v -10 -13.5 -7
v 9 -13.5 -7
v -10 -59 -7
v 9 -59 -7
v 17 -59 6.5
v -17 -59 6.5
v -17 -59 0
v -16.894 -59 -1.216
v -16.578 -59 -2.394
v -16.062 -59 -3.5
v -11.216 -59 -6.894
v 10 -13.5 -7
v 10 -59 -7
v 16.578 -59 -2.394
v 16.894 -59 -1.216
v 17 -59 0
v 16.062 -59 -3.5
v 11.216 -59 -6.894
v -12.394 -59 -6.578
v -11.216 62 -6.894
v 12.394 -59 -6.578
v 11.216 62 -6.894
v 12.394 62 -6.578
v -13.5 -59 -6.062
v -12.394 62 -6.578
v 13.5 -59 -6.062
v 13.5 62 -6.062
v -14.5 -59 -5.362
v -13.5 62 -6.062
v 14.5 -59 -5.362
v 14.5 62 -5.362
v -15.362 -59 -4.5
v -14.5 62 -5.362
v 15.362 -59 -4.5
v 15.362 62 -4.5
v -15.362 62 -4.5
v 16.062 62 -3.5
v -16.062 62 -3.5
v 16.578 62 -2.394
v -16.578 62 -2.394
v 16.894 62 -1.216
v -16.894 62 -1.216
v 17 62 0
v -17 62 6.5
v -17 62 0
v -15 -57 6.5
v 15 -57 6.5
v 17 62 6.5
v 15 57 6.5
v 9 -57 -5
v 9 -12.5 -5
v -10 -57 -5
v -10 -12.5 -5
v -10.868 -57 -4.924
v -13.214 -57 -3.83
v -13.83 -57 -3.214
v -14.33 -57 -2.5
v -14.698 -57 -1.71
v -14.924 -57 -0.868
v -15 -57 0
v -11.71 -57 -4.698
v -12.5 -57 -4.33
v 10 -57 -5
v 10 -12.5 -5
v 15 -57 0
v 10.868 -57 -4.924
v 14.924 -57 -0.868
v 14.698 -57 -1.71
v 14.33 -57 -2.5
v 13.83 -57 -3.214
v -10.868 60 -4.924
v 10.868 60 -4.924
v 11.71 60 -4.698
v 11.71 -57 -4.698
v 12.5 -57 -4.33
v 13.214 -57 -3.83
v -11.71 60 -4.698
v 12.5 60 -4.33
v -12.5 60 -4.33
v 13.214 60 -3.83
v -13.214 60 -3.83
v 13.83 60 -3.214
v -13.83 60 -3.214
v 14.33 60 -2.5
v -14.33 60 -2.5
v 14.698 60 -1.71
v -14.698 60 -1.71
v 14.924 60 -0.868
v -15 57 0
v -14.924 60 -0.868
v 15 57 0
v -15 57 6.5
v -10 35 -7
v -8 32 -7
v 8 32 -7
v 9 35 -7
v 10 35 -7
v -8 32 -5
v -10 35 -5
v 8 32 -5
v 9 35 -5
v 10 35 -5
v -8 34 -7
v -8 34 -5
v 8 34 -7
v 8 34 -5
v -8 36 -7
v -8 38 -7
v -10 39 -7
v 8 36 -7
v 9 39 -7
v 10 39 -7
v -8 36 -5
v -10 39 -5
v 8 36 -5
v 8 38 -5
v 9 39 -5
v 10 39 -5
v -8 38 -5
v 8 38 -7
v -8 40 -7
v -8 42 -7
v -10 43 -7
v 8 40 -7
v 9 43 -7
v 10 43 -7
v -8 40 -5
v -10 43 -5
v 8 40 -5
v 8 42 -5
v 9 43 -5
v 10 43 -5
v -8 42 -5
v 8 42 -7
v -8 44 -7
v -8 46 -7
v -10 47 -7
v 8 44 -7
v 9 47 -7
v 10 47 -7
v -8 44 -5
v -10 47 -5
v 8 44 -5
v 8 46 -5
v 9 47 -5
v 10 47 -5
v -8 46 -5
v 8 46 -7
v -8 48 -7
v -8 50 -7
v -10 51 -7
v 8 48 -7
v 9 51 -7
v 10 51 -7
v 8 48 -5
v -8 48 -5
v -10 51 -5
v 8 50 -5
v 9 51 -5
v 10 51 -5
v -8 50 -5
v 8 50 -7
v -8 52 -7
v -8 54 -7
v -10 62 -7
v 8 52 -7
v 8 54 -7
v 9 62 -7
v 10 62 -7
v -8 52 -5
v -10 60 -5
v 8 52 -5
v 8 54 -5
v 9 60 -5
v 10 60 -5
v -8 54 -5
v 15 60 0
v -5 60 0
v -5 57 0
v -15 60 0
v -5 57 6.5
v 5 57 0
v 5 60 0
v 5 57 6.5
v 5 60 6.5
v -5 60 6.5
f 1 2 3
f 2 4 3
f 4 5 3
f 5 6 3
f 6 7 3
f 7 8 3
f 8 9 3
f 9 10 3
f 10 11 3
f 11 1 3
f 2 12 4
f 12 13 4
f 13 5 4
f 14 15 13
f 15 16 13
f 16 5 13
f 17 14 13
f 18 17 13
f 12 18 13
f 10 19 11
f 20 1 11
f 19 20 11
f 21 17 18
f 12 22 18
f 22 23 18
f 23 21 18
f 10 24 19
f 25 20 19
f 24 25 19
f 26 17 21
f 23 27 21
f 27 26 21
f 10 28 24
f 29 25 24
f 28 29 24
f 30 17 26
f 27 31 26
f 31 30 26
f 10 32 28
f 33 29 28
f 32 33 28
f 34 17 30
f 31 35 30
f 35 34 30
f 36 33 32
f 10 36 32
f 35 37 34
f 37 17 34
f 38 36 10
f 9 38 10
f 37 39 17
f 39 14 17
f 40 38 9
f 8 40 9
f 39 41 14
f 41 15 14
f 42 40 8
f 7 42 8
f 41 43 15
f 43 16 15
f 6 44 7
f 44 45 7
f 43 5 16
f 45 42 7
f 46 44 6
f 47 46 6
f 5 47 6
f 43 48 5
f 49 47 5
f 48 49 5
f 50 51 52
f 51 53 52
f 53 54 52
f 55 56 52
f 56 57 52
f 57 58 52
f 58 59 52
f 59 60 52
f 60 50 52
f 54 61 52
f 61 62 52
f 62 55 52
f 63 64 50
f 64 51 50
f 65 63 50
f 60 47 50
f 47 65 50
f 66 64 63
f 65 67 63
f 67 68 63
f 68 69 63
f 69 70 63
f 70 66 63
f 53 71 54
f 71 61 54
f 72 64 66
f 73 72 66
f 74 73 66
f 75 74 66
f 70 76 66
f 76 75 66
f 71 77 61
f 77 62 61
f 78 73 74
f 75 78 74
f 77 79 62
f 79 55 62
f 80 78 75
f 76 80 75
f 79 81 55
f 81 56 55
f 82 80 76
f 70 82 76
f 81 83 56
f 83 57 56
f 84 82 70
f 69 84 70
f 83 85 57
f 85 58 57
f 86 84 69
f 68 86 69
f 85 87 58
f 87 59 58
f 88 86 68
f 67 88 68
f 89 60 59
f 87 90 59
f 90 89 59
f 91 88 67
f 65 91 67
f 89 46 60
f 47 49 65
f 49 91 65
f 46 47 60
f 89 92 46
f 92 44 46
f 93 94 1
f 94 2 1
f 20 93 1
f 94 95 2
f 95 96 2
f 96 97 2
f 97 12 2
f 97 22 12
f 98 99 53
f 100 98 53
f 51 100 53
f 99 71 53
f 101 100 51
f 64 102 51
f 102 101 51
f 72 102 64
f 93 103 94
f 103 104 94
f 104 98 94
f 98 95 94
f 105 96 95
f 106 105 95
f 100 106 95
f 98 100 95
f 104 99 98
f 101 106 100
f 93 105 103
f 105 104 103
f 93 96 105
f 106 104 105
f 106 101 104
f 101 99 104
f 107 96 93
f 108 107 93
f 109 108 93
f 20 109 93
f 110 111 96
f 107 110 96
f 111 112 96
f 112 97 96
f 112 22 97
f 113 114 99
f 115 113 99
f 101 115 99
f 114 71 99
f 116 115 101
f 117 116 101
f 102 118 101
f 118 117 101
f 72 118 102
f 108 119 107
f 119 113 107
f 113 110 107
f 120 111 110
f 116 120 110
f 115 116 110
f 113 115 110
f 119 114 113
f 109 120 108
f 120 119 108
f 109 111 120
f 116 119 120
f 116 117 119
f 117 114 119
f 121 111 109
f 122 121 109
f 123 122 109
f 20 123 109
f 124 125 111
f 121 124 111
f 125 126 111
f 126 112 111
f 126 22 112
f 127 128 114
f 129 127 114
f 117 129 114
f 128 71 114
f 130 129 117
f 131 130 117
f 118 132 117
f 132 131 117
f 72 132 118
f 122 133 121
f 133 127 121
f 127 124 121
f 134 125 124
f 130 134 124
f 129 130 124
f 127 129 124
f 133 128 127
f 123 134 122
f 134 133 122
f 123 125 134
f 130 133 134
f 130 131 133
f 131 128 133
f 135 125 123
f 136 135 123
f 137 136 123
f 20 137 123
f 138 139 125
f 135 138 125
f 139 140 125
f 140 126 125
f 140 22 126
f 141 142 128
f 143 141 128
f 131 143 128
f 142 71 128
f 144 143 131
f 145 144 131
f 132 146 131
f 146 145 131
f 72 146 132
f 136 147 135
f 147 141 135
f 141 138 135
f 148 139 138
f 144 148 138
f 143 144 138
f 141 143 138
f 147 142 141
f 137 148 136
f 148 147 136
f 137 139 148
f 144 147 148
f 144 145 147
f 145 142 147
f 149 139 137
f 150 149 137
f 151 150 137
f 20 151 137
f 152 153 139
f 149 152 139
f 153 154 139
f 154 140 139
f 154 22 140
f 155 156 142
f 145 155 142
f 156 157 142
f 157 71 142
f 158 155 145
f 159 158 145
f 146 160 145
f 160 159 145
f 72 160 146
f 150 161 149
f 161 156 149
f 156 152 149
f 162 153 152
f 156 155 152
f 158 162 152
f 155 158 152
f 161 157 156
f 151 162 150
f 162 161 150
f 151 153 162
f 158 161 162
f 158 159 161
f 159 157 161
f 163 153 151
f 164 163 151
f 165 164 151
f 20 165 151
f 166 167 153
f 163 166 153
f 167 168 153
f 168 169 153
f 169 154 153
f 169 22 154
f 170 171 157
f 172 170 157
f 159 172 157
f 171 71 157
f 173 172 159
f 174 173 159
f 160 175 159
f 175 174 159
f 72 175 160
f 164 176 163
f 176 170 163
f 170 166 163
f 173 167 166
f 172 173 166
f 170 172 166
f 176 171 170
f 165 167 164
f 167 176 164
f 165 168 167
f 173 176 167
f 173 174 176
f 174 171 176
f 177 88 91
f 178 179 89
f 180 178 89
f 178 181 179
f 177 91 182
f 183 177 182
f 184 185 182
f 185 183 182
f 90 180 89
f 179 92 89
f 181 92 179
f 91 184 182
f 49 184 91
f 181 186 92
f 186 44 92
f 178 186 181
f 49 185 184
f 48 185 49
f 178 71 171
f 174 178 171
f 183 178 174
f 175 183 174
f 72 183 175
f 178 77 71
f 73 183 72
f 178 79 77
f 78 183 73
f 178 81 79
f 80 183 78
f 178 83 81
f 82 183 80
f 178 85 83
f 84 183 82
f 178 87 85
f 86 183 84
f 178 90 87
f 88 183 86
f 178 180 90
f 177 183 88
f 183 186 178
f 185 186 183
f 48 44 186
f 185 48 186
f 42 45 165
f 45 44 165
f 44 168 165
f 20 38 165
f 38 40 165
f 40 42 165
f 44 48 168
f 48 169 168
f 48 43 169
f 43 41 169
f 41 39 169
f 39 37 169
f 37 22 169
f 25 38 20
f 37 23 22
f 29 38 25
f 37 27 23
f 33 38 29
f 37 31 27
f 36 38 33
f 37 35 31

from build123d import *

# Parameters (mm, degrees)
ESBO_O1_W                = 34
ESBO_O1_H                = 121
RESSALTO_EXTRUS_O1_DEPTH = 6.5
RESSALTO_EXTRUS_O2_DEPTH = 62
RESSALTO_EXTRUS_O3_START = -59
RESSALTO_EXTRUS_O3_DEPTH = 59
RESSALTO_EXTRUS_O4_DEPTH = 2
RESSALTO_EXTRUS_O5_START = -2
RESSALTO_EXTRUS_O5_DEPTH = 2
ESBO_O8_W                = 16
ESBO_O8_H                = 2
CORTE_EXTRUS_O1_DEPTH    = 10


with BuildPart() as part:
    # Esboço1 → Ressalto-extrusão1 (new body)
    with BuildSketch(Plane.XY):
        with Locations((0, 1.5)):
            Rectangle(ESBO_O1_W, ESBO_O1_H)
        Polygon((15, -57), (-15, -57), (-15, 57), (-5, 57), (-5, 60), (5, 60), (5, 57), (15, 57), align=None, mode=Mode.SUBTRACT)
    extrude(amount=RESSALTO_EXTRUS_O1_DEPTH)

    # Esboço4 → Ressalto-extrusão2 (add)
    with BuildSketch(Plane(origin=(0, 0, 0), x_dir=(1, 0, 0), z_dir=(0, 1, 0))):
        with BuildLine():
            ThreePointArc((-10, 7), (-14.949747468, 4.949747468), (-17, 0))
            Line((-17, 0), (-15, 0))
            ThreePointArc((-15, 0), (-13.535533906, 3.535533906), (-10, 5))
            Line((-10, 5), (10, 5))
            ThreePointArc((10, 5), (13.535533906, 3.535533906), (15, 0))
            Line((15, 0), (17, 0))
            ThreePointArc((17, 0), (14.949747468, 4.949747468), (10, 7))
            Line((10, 7), (-10, 7))
        make_face()
    extrude(amount=RESSALTO_EXTRUS_O2_DEPTH)

    # Esboço4<3> → Ressalto-extrusão3 (add)
    with BuildSketch(Plane(origin=(0, 0, 0), x_dir=(1, 0, 0), z_dir=(0, 1, 0)).offset(RESSALTO_EXTRUS_O3_START)):
        with BuildLine():
            ThreePointArc((-10, 7), (-14.949747468, 4.949747468), (-17, 0))
            Line((-17, 0), (-15, 0))
            ThreePointArc((-15, 0), (-13.535533906, 3.535533906), (-10, 5))
            Line((-10, 5), (10, 5))
            ThreePointArc((10, 5), (13.535533906, 3.535533906), (15, 0))
            Line((15, 0), (17, 0))
            ThreePointArc((17, 0), (14.949747468, 4.949747468), (10, 7))
            Line((10, 7), (-10, 7))
        make_face()
    extrude(amount=RESSALTO_EXTRUS_O3_DEPTH)

    # Esboço6 → Ressalto-extrusão4 (add)
    with BuildSketch(Plane.XZ.offset(59)):
        with BuildLine():
            Line((-17, 6.5), (-17, 0))
            ThreePointArc((-17, 0), (-14.949747468, -4.949747468), (-10, -7))
            Line((-10, -7), (10, -7))
            ThreePointArc((10, -7), (14.949747468, -4.949747468), (17, 0))
            Line((17, 0), (17, 6.5))
            Line((17, 6.5), (-17, 6.5))
        make_face()
    extrude(amount=-RESSALTO_EXTRUS_O4_DEPTH)

    # Esboço7 → Ressalto-extrusão5 (add)
    with BuildSketch(Plane(origin=(0, 62, 0), x_dir=(1, 0, 0), z_dir=(0, 1, 0)).offset(RESSALTO_EXTRUS_O5_START)):
        with BuildLine():
            Line((17, -6.5), (17, 0))
            ThreePointArc((17, 0), (14.949747468, 4.949747468), (10, 7))
            Line((10, 7), (-10, 7))
            ThreePointArc((-10, 7), (-14.949747468, 4.949747468), (-17, 0))
            Line((-17, 0), (-17, -6.5))
            Line((-17, -6.5), (17, -6.5))
        make_face()
    extrude(amount=RESSALTO_EXTRUS_O5_DEPTH)

    # Esboço8 → Corte-extrusão1 (cut, symmetric)
    with BuildSketch(Plane(origin=(0, 0, -7), x_dir=(-1, 0, 0), z_dir=(0, 0, -1))):
        with Locations((0, 33)):
            Rectangle(ESBO_O8_W, ESBO_O8_H)
        with Locations((0, 37)):
            Rectangle(ESBO_O8_W, ESBO_O8_H)
        with Locations((0, 41)):
            Rectangle(ESBO_O8_W, ESBO_O8_H)
        with Locations((0, 45)):
            Rectangle(ESBO_O8_W, ESBO_O8_H)
        with Locations((0, 49)):
            Rectangle(ESBO_O8_W, ESBO_O8_H)
        with Locations((0, 53)):
            Rectangle(ESBO_O8_W, ESBO_O8_H)
    extrude(amount=CORTE_EXTRUS_O1_DEPTH, both=True, mode=Mode.SUBTRACT)


solid = part.part
